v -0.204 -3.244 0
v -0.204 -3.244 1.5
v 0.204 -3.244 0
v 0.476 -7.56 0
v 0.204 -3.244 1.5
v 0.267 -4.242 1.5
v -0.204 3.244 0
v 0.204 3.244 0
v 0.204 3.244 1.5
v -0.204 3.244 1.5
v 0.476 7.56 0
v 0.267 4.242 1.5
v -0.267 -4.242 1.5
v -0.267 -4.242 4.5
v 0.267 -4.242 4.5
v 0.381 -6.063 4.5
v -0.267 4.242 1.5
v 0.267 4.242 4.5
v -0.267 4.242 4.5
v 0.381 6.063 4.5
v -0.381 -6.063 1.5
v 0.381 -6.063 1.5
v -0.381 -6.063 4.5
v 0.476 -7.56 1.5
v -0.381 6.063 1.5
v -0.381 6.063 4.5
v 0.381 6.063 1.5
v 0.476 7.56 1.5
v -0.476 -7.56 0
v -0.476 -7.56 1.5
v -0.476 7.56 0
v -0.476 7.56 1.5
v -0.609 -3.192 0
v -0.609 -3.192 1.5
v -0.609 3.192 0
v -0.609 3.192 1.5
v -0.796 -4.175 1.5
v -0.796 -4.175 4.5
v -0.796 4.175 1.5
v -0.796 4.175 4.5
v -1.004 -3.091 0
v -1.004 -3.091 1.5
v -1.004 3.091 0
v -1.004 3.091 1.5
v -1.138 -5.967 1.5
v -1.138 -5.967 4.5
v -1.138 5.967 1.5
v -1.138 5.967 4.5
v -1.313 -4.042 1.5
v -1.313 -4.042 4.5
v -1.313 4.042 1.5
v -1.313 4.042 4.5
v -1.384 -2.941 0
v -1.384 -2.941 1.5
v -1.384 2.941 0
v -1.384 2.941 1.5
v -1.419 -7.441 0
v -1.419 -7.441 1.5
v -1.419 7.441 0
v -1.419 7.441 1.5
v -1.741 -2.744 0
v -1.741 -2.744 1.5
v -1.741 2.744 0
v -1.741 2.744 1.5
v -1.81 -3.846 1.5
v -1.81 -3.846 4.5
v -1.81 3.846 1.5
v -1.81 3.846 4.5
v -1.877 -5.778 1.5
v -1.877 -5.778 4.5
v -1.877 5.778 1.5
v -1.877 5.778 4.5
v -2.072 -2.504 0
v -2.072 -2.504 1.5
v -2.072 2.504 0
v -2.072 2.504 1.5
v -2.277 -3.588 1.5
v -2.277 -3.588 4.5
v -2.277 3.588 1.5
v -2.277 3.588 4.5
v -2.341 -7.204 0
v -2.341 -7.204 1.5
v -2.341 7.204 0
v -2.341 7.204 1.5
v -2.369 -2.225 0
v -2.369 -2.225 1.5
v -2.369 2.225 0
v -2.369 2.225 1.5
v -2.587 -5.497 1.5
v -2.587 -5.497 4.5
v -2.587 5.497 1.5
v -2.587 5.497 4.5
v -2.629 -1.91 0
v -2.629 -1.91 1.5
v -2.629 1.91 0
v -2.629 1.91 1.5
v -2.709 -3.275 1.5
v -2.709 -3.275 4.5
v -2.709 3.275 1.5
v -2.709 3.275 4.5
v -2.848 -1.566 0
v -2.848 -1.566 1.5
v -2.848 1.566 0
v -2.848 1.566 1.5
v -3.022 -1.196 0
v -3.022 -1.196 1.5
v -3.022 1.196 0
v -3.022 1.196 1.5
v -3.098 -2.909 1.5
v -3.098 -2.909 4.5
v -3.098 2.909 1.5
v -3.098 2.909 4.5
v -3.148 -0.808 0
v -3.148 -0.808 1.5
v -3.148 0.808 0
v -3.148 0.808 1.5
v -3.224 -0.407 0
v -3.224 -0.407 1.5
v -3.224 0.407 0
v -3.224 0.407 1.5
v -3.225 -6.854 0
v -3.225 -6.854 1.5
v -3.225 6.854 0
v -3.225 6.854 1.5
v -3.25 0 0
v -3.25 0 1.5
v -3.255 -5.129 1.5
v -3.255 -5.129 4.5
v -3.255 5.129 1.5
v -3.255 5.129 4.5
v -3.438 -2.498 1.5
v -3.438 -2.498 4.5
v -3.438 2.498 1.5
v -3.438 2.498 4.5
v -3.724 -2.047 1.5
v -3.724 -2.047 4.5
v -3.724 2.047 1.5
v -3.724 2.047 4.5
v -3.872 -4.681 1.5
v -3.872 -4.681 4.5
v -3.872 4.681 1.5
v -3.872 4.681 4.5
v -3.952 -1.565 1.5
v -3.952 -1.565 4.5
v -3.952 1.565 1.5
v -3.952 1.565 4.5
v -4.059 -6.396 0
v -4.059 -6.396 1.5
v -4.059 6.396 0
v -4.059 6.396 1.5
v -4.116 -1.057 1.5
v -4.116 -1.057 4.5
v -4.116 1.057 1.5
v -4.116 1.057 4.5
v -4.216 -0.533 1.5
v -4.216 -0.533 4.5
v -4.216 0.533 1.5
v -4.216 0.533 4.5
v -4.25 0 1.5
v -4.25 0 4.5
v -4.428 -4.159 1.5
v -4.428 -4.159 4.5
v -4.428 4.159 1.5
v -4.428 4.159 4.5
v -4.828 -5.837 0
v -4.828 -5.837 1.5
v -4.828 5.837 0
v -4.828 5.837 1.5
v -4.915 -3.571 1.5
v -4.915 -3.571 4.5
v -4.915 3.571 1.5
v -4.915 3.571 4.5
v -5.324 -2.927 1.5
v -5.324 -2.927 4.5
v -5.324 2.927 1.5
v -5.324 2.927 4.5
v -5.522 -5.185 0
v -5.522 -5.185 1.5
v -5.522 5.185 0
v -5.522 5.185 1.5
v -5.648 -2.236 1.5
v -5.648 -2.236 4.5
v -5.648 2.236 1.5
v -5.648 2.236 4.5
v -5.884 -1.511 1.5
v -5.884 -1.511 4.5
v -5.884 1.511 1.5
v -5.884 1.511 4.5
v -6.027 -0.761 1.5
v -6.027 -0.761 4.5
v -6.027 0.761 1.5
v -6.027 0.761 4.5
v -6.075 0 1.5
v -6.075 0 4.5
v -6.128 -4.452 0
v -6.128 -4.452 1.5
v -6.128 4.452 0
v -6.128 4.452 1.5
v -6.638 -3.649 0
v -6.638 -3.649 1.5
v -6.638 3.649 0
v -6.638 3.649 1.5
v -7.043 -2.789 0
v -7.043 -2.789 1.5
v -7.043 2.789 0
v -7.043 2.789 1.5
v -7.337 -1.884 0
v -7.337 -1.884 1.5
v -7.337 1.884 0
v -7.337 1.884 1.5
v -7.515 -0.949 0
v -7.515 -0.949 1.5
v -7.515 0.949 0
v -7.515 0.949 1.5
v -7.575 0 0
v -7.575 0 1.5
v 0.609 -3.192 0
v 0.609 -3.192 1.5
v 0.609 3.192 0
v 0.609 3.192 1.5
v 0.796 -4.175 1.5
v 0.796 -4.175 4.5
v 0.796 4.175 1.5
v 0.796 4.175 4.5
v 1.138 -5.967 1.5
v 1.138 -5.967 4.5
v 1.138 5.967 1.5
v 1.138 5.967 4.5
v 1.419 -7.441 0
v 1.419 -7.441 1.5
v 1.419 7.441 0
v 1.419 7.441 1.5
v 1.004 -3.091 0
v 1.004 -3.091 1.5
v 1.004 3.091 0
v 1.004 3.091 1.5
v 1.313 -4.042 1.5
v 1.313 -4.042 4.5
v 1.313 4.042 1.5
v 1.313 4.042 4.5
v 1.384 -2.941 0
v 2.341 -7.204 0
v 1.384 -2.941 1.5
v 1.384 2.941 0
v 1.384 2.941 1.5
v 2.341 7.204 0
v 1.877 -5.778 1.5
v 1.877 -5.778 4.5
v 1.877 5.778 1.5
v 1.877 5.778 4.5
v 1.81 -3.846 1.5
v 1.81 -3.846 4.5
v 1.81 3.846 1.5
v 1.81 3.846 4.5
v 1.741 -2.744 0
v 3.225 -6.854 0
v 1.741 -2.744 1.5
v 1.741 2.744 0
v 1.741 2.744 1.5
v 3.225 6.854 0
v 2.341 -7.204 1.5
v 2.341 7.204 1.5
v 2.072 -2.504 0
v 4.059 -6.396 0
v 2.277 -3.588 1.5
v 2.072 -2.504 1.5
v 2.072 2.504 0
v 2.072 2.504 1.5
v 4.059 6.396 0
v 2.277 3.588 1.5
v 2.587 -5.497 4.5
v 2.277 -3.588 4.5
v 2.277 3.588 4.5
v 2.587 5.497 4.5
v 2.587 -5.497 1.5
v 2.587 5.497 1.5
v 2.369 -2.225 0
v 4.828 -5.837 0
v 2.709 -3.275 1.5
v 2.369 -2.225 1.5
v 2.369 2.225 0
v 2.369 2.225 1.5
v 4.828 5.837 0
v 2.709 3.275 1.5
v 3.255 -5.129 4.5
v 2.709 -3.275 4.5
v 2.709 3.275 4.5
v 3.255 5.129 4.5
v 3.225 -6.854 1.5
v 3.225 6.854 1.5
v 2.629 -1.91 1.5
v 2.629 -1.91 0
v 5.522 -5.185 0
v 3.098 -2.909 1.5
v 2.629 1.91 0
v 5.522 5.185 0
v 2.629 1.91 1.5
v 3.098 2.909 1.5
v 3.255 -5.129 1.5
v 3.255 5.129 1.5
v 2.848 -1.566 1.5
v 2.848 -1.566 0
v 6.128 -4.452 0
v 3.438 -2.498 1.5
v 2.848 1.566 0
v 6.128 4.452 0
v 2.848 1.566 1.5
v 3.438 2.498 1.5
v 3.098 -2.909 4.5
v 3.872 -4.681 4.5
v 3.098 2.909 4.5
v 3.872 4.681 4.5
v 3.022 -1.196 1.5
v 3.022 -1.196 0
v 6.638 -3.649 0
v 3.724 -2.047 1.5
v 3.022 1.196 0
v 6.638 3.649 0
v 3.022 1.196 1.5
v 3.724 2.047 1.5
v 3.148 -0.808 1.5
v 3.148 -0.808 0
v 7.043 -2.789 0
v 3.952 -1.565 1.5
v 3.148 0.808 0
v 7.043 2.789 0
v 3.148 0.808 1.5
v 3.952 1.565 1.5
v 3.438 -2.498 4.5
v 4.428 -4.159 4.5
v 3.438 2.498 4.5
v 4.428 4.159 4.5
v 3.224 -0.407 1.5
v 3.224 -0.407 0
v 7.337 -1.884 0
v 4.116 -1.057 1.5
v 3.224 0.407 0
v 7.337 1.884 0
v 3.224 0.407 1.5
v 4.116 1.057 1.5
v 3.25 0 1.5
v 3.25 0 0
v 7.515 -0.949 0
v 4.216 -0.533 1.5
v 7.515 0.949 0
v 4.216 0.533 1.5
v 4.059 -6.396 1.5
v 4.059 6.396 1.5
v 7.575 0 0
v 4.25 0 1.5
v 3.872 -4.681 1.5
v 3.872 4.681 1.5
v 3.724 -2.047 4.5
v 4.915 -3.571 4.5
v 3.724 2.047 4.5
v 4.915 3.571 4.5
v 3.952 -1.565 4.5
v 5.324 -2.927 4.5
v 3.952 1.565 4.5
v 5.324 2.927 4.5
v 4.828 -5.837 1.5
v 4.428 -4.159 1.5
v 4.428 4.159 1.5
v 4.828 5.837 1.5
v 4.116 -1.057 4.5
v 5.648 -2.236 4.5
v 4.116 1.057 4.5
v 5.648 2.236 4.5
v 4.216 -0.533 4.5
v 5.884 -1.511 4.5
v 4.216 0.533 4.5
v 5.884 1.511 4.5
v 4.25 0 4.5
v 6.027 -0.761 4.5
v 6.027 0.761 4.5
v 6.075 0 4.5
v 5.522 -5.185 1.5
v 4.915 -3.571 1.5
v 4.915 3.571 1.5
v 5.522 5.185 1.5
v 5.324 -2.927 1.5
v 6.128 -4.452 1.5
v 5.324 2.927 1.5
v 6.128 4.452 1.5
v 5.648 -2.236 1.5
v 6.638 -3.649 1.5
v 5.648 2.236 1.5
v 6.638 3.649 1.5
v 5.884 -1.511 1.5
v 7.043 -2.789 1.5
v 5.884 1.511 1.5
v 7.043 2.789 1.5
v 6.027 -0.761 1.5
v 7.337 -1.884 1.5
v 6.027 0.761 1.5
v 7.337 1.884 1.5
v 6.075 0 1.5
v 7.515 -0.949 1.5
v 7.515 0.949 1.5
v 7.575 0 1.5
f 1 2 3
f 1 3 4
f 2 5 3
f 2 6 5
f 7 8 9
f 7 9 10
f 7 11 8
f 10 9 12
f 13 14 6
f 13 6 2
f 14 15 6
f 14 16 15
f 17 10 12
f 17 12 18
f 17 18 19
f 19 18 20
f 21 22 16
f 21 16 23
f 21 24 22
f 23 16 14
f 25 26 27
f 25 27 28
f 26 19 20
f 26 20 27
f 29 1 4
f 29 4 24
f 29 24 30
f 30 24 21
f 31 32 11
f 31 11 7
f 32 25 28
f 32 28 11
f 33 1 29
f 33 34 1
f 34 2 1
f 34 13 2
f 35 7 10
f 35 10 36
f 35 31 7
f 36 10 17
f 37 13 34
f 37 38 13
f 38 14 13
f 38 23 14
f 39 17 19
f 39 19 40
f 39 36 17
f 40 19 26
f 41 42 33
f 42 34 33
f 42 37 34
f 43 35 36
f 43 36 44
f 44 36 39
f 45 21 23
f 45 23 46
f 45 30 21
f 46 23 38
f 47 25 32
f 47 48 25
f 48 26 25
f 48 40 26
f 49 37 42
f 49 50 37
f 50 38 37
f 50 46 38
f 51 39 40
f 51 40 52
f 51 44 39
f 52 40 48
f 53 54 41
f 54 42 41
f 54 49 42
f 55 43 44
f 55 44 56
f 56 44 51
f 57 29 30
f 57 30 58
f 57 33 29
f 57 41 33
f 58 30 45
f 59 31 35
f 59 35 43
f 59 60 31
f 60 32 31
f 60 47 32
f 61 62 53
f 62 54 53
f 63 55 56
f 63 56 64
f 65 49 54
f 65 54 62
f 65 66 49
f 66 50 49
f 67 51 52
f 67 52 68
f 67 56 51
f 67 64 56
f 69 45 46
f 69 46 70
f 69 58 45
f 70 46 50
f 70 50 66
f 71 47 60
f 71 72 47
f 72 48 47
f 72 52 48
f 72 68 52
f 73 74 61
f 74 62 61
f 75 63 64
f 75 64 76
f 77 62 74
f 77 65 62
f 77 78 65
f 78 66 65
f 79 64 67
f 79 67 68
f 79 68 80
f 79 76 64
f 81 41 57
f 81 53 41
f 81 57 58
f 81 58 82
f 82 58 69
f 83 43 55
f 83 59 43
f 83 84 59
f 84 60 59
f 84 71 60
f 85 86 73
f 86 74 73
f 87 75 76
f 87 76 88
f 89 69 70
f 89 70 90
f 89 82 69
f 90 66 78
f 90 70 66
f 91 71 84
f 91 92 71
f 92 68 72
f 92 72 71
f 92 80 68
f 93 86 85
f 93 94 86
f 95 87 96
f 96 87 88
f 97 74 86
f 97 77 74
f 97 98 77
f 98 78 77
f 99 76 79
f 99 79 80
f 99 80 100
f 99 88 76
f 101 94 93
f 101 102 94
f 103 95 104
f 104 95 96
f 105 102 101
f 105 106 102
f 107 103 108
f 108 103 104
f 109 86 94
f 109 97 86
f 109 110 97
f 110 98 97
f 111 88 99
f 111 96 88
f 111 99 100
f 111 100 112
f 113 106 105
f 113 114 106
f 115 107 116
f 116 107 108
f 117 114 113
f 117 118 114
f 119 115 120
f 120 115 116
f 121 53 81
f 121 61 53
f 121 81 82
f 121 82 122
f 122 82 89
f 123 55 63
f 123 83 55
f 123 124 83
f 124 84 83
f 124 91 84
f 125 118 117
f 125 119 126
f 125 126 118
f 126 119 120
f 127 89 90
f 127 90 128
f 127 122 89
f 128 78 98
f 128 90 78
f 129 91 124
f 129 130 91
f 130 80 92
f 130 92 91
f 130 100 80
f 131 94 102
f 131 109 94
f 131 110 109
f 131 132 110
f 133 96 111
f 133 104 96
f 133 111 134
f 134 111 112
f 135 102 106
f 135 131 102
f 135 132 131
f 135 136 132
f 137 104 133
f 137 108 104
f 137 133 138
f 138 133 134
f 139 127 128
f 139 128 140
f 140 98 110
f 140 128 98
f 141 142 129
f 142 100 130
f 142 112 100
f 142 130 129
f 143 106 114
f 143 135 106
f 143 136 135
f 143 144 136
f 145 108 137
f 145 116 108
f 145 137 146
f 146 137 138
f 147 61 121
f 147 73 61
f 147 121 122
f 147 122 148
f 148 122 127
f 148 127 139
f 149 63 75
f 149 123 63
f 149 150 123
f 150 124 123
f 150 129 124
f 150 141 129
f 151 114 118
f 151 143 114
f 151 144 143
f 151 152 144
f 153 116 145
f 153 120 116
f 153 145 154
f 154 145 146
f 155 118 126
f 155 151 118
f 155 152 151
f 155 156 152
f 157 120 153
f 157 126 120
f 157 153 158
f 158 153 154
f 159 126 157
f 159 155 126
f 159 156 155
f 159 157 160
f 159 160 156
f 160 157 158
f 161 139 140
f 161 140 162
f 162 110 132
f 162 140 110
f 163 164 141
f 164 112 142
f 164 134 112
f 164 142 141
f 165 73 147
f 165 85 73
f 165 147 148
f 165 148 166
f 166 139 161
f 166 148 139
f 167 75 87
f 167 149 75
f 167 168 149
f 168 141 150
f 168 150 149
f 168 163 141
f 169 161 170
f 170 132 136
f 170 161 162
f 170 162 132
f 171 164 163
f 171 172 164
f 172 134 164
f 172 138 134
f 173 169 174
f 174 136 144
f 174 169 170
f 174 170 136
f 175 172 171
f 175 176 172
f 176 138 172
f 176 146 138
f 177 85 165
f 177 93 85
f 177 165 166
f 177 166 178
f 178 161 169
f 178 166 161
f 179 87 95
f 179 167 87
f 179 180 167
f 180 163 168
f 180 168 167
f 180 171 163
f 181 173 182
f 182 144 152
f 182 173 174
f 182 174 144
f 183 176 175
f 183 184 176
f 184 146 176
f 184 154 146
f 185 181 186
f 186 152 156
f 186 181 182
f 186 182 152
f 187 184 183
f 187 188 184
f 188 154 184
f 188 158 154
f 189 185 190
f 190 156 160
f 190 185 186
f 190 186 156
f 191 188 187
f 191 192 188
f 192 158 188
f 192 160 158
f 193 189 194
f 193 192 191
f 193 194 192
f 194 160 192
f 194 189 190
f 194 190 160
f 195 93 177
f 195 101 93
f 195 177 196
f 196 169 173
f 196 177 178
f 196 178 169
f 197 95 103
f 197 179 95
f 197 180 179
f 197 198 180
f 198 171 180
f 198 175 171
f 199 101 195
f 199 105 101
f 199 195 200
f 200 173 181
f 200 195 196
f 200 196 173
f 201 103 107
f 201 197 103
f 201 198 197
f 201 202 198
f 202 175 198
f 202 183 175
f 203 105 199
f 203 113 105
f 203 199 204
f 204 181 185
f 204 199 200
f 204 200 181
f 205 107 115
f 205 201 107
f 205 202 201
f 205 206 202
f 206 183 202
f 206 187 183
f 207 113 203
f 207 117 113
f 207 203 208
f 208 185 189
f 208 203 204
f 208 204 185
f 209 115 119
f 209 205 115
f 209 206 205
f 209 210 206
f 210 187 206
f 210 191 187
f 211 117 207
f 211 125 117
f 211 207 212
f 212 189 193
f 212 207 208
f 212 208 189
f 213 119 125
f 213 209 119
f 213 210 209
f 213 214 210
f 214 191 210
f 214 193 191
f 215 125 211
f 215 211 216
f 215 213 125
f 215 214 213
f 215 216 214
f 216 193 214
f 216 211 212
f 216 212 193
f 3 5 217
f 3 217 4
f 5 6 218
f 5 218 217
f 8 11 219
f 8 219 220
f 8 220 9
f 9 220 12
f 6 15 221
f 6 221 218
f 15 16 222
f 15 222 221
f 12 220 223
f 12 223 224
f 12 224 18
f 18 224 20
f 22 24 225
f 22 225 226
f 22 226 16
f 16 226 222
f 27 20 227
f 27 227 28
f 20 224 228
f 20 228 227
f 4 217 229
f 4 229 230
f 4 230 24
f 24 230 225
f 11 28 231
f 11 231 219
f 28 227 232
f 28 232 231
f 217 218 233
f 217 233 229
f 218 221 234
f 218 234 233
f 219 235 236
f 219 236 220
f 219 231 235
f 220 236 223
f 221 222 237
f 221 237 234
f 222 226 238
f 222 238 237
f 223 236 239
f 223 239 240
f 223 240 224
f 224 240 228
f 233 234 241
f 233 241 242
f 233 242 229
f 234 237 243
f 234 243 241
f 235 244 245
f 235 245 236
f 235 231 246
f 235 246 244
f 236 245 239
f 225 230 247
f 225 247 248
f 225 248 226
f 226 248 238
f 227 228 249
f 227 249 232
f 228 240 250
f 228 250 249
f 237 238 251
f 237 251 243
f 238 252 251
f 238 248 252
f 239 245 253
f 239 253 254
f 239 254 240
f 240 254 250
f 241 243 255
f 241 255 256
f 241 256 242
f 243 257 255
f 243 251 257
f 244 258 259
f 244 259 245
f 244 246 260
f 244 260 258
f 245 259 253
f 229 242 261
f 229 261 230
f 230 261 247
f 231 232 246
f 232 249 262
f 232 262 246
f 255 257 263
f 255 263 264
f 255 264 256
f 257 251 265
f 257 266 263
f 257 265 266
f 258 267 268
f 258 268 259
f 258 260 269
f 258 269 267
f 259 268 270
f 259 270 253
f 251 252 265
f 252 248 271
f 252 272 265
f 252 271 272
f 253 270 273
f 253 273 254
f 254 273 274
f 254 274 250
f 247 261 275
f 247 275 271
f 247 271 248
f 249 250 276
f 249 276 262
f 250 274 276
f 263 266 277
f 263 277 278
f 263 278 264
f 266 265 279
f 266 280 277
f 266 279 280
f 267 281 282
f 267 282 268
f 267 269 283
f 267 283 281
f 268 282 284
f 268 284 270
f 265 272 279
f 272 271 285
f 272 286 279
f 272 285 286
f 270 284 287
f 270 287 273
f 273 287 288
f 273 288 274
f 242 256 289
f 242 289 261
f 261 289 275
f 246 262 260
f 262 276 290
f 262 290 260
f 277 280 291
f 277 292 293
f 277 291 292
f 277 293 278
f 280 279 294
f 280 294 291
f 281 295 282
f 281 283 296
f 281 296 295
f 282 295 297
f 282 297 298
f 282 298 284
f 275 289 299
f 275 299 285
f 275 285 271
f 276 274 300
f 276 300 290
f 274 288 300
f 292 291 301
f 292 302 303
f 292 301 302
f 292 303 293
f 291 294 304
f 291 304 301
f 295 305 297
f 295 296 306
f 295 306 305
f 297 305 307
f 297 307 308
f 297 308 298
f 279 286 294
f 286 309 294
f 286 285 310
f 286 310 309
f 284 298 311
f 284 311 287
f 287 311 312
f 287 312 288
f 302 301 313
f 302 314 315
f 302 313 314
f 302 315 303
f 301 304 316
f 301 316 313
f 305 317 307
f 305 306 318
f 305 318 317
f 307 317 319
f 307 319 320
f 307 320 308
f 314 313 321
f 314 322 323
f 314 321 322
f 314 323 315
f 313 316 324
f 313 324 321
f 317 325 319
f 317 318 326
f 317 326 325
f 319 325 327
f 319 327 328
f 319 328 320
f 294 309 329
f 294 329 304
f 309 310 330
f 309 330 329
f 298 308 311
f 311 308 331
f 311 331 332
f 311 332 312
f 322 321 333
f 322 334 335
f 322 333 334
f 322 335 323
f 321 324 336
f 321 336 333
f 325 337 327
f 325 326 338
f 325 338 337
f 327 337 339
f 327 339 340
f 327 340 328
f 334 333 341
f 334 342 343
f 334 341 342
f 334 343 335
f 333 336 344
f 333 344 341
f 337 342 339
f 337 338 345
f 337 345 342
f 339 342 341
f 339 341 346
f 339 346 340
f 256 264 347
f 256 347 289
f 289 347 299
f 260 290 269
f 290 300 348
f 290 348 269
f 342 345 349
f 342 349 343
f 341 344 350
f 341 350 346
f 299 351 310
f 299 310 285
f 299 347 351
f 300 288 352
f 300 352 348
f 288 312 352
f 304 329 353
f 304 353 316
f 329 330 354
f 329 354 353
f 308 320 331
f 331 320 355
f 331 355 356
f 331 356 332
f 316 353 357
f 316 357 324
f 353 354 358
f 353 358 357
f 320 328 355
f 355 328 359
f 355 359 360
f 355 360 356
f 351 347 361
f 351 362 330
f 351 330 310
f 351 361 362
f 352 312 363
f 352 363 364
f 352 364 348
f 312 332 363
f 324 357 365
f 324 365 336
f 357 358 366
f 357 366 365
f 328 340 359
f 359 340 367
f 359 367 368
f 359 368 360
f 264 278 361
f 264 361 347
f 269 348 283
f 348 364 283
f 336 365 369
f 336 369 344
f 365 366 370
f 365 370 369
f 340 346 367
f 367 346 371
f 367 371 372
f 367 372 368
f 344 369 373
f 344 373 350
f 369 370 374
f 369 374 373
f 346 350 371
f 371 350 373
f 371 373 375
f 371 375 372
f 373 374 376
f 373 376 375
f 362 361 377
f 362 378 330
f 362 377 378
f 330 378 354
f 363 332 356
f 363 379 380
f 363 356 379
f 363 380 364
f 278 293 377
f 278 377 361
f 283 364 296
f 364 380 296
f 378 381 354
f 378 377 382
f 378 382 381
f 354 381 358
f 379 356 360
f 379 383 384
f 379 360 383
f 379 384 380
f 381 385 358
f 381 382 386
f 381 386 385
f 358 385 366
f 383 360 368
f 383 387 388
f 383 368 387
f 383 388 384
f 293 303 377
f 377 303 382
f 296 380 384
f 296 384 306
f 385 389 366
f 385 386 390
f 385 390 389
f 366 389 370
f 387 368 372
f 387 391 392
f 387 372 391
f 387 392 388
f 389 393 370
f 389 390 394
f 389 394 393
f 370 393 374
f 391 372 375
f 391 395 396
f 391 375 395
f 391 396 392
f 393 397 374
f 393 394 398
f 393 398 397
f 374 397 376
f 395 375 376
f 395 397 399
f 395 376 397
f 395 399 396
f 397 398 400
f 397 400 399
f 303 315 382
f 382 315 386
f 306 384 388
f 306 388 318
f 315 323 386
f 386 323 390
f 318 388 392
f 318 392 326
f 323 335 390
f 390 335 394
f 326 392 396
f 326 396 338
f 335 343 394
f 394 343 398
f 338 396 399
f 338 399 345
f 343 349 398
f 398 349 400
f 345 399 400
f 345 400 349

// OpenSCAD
// file: ../888_1023.scad
include <../parameters.scad>

draft = $preview;

module 888_1023(height = 3, draft = true){

    inner_diameter = M8_screw_diameter;
    outer_diameter = bearing_efsm_12_d + 3;
    rim_height = 1.5;
    bearng_ball_height = height;

    difference(){
        union(){
            cylinder(h = rim_height, d = outer_diameter, $fn = 50);
            translate([0,0,rim_height])
                cylinder(h = bearng_ball_height, d = bearing_efsm_12_d, $fn = 50);
        }


        cylinder(d = M6_screw_diameter, h = 10, $fn = 50);

        translate([0, 0, rim_height])
            cylinder(h = 2 * bearng_ball_height , d = inner_diameter, $fn = 50);
    }
}

888_1023(3, draft);
// main file
include <../../parameters.scad>
use <../888_1023.scad>

draft = $preview;

888_1023(3, draft);
